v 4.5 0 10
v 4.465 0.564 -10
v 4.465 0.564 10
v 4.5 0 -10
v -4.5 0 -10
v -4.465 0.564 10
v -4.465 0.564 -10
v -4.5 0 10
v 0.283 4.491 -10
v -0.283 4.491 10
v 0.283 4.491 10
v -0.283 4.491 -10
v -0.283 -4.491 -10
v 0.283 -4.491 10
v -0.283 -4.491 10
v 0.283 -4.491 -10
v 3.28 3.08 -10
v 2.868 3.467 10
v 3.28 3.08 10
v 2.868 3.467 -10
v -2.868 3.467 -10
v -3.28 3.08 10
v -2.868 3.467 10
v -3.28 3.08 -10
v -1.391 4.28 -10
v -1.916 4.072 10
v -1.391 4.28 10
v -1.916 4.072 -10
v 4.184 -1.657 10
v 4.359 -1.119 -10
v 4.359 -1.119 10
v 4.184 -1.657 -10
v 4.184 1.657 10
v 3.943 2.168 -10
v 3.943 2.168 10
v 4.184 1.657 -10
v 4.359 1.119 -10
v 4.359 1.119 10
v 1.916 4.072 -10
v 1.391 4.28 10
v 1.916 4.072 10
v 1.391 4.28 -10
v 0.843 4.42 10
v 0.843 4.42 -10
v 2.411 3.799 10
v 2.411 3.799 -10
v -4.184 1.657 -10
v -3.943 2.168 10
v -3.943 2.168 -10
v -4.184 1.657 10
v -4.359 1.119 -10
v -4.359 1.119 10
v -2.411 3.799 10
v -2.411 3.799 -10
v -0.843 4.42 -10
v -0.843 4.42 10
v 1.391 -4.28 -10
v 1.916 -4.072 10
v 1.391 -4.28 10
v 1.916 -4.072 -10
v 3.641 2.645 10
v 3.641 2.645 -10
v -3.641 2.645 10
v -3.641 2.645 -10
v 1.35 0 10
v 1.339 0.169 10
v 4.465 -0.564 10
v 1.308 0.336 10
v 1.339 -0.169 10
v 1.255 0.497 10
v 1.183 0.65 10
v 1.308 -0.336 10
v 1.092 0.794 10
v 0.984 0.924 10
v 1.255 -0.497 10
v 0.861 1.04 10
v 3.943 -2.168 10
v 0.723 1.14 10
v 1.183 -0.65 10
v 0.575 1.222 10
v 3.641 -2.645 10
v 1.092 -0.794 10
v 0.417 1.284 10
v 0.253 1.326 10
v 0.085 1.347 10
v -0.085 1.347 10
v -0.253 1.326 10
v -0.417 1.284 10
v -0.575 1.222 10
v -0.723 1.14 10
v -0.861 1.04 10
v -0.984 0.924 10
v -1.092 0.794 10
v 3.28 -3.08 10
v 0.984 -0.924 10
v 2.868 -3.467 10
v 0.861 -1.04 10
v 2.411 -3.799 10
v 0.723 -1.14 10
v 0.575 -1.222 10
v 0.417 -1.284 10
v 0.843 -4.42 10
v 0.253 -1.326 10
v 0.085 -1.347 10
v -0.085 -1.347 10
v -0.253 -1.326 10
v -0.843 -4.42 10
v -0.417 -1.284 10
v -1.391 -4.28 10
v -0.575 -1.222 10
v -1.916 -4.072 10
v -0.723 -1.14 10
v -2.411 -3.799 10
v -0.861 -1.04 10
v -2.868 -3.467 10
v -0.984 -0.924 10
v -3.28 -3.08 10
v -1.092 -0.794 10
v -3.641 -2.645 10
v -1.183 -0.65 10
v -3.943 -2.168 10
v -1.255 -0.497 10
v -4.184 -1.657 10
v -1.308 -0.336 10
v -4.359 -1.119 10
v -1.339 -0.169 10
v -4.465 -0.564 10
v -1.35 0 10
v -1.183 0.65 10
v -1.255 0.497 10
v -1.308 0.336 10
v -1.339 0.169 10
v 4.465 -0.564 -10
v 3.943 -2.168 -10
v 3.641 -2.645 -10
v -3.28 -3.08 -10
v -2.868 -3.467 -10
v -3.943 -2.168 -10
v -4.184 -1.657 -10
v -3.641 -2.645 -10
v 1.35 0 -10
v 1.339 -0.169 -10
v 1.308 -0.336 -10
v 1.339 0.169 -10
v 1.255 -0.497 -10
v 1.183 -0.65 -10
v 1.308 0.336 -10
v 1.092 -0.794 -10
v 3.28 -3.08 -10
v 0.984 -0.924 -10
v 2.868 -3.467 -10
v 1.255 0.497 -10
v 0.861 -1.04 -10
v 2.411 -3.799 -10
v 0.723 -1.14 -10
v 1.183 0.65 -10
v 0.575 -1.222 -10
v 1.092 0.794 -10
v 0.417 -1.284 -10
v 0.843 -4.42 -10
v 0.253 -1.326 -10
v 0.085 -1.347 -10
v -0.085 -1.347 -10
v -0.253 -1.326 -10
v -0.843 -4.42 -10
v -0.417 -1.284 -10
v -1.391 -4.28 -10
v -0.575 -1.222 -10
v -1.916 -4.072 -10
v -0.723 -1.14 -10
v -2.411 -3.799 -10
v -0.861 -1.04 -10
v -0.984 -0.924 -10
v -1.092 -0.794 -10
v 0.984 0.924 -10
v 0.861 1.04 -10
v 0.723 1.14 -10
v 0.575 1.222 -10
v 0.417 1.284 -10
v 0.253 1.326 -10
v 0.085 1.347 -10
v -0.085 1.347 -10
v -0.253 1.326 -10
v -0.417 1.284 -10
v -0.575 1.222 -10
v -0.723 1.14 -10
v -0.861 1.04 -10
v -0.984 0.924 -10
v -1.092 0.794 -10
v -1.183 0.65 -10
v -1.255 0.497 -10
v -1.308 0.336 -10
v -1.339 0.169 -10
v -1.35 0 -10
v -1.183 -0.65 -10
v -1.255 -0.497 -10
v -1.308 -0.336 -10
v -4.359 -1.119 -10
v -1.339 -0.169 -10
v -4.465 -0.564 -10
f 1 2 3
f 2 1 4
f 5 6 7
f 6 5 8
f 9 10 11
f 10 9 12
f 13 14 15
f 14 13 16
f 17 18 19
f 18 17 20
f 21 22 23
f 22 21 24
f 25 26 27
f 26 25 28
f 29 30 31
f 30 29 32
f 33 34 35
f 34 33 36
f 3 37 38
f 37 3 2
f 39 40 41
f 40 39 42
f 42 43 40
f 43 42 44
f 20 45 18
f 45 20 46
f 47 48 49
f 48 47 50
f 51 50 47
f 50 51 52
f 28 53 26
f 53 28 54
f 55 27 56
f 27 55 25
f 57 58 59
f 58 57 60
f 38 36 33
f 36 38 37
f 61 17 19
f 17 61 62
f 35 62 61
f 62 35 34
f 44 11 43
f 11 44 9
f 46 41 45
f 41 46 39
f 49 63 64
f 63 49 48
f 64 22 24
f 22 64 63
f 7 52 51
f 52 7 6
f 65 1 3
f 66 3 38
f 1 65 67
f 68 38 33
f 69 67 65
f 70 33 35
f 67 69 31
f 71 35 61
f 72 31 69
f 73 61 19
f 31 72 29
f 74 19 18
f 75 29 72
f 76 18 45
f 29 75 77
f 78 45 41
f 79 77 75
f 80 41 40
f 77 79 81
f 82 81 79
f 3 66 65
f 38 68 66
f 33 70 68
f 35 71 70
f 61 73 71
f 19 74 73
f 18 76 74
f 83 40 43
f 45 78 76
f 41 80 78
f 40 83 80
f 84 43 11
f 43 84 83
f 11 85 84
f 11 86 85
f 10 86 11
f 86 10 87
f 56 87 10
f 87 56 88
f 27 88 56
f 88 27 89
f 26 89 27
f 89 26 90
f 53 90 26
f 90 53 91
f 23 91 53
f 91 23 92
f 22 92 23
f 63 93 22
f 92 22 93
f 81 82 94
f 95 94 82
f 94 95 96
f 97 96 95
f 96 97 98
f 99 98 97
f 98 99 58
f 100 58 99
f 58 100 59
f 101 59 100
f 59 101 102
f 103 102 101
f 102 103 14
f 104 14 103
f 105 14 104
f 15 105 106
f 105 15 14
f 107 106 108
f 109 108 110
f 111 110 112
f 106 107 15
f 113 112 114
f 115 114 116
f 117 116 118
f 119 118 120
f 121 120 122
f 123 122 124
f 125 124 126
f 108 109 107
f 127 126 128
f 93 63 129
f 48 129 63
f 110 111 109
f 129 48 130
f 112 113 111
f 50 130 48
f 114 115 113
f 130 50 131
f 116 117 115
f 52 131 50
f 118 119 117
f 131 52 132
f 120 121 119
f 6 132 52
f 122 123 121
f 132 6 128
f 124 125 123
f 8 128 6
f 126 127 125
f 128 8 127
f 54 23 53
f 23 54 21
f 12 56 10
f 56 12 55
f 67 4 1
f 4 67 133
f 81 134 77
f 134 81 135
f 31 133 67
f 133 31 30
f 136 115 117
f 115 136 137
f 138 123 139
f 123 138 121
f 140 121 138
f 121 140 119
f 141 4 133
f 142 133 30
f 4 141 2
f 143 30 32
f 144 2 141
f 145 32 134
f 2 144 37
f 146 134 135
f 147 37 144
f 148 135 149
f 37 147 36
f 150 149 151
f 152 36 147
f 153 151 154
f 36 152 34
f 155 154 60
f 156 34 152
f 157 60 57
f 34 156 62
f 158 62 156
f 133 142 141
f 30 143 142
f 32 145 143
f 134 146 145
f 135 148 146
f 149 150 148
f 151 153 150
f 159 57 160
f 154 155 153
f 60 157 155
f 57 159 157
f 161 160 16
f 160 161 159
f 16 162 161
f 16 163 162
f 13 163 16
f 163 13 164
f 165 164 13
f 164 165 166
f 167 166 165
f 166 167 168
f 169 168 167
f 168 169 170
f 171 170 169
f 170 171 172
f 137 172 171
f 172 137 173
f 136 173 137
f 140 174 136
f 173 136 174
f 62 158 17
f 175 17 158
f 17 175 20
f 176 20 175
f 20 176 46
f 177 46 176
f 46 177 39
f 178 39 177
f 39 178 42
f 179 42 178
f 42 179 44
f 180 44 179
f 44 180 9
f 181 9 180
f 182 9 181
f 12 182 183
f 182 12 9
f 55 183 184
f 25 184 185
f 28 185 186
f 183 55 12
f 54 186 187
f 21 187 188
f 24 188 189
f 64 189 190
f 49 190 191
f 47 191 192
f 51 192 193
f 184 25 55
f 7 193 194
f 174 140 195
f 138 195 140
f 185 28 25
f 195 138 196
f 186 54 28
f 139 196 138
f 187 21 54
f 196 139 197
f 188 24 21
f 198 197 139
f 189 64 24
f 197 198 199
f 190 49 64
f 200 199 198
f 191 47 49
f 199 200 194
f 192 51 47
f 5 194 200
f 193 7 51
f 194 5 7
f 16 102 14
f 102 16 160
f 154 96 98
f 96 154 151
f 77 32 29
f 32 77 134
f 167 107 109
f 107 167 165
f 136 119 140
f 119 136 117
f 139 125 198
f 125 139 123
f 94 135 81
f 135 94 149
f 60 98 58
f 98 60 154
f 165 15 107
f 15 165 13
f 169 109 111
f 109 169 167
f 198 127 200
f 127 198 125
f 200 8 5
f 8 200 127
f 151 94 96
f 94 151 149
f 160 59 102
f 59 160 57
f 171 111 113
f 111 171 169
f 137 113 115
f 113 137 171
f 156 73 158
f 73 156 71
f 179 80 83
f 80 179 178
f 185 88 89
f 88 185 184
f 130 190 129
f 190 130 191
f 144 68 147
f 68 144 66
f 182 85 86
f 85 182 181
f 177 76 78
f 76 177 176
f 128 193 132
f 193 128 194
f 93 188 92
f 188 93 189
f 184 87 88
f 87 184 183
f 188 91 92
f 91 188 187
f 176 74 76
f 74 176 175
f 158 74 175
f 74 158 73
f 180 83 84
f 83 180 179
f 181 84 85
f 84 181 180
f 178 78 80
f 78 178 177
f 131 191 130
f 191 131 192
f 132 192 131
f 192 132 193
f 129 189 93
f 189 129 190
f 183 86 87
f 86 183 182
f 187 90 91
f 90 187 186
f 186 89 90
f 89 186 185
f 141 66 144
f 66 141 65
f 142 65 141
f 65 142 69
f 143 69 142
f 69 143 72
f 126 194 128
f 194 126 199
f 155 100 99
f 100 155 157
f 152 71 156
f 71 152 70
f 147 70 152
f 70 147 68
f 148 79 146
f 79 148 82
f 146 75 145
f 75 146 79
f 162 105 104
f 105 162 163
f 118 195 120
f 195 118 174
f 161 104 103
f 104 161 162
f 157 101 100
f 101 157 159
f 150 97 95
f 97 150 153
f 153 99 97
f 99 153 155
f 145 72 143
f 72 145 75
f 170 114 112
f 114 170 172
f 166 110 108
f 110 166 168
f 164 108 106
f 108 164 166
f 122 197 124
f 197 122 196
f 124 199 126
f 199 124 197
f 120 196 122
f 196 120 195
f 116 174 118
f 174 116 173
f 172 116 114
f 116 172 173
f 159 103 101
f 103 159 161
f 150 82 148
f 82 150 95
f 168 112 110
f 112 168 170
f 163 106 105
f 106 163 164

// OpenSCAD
$fn = 50;


difference() {
	union() {
		translate(v = [0, 0, -10.0000000000]) {
			cylinder(h = 20, r = 4.5000000000);
		}
	}
	union() {
		translate(v = [0, 0, -100.0000000000]) {
			cylinder(h = 200, r = 1.3500000000);
		}
	}
}
